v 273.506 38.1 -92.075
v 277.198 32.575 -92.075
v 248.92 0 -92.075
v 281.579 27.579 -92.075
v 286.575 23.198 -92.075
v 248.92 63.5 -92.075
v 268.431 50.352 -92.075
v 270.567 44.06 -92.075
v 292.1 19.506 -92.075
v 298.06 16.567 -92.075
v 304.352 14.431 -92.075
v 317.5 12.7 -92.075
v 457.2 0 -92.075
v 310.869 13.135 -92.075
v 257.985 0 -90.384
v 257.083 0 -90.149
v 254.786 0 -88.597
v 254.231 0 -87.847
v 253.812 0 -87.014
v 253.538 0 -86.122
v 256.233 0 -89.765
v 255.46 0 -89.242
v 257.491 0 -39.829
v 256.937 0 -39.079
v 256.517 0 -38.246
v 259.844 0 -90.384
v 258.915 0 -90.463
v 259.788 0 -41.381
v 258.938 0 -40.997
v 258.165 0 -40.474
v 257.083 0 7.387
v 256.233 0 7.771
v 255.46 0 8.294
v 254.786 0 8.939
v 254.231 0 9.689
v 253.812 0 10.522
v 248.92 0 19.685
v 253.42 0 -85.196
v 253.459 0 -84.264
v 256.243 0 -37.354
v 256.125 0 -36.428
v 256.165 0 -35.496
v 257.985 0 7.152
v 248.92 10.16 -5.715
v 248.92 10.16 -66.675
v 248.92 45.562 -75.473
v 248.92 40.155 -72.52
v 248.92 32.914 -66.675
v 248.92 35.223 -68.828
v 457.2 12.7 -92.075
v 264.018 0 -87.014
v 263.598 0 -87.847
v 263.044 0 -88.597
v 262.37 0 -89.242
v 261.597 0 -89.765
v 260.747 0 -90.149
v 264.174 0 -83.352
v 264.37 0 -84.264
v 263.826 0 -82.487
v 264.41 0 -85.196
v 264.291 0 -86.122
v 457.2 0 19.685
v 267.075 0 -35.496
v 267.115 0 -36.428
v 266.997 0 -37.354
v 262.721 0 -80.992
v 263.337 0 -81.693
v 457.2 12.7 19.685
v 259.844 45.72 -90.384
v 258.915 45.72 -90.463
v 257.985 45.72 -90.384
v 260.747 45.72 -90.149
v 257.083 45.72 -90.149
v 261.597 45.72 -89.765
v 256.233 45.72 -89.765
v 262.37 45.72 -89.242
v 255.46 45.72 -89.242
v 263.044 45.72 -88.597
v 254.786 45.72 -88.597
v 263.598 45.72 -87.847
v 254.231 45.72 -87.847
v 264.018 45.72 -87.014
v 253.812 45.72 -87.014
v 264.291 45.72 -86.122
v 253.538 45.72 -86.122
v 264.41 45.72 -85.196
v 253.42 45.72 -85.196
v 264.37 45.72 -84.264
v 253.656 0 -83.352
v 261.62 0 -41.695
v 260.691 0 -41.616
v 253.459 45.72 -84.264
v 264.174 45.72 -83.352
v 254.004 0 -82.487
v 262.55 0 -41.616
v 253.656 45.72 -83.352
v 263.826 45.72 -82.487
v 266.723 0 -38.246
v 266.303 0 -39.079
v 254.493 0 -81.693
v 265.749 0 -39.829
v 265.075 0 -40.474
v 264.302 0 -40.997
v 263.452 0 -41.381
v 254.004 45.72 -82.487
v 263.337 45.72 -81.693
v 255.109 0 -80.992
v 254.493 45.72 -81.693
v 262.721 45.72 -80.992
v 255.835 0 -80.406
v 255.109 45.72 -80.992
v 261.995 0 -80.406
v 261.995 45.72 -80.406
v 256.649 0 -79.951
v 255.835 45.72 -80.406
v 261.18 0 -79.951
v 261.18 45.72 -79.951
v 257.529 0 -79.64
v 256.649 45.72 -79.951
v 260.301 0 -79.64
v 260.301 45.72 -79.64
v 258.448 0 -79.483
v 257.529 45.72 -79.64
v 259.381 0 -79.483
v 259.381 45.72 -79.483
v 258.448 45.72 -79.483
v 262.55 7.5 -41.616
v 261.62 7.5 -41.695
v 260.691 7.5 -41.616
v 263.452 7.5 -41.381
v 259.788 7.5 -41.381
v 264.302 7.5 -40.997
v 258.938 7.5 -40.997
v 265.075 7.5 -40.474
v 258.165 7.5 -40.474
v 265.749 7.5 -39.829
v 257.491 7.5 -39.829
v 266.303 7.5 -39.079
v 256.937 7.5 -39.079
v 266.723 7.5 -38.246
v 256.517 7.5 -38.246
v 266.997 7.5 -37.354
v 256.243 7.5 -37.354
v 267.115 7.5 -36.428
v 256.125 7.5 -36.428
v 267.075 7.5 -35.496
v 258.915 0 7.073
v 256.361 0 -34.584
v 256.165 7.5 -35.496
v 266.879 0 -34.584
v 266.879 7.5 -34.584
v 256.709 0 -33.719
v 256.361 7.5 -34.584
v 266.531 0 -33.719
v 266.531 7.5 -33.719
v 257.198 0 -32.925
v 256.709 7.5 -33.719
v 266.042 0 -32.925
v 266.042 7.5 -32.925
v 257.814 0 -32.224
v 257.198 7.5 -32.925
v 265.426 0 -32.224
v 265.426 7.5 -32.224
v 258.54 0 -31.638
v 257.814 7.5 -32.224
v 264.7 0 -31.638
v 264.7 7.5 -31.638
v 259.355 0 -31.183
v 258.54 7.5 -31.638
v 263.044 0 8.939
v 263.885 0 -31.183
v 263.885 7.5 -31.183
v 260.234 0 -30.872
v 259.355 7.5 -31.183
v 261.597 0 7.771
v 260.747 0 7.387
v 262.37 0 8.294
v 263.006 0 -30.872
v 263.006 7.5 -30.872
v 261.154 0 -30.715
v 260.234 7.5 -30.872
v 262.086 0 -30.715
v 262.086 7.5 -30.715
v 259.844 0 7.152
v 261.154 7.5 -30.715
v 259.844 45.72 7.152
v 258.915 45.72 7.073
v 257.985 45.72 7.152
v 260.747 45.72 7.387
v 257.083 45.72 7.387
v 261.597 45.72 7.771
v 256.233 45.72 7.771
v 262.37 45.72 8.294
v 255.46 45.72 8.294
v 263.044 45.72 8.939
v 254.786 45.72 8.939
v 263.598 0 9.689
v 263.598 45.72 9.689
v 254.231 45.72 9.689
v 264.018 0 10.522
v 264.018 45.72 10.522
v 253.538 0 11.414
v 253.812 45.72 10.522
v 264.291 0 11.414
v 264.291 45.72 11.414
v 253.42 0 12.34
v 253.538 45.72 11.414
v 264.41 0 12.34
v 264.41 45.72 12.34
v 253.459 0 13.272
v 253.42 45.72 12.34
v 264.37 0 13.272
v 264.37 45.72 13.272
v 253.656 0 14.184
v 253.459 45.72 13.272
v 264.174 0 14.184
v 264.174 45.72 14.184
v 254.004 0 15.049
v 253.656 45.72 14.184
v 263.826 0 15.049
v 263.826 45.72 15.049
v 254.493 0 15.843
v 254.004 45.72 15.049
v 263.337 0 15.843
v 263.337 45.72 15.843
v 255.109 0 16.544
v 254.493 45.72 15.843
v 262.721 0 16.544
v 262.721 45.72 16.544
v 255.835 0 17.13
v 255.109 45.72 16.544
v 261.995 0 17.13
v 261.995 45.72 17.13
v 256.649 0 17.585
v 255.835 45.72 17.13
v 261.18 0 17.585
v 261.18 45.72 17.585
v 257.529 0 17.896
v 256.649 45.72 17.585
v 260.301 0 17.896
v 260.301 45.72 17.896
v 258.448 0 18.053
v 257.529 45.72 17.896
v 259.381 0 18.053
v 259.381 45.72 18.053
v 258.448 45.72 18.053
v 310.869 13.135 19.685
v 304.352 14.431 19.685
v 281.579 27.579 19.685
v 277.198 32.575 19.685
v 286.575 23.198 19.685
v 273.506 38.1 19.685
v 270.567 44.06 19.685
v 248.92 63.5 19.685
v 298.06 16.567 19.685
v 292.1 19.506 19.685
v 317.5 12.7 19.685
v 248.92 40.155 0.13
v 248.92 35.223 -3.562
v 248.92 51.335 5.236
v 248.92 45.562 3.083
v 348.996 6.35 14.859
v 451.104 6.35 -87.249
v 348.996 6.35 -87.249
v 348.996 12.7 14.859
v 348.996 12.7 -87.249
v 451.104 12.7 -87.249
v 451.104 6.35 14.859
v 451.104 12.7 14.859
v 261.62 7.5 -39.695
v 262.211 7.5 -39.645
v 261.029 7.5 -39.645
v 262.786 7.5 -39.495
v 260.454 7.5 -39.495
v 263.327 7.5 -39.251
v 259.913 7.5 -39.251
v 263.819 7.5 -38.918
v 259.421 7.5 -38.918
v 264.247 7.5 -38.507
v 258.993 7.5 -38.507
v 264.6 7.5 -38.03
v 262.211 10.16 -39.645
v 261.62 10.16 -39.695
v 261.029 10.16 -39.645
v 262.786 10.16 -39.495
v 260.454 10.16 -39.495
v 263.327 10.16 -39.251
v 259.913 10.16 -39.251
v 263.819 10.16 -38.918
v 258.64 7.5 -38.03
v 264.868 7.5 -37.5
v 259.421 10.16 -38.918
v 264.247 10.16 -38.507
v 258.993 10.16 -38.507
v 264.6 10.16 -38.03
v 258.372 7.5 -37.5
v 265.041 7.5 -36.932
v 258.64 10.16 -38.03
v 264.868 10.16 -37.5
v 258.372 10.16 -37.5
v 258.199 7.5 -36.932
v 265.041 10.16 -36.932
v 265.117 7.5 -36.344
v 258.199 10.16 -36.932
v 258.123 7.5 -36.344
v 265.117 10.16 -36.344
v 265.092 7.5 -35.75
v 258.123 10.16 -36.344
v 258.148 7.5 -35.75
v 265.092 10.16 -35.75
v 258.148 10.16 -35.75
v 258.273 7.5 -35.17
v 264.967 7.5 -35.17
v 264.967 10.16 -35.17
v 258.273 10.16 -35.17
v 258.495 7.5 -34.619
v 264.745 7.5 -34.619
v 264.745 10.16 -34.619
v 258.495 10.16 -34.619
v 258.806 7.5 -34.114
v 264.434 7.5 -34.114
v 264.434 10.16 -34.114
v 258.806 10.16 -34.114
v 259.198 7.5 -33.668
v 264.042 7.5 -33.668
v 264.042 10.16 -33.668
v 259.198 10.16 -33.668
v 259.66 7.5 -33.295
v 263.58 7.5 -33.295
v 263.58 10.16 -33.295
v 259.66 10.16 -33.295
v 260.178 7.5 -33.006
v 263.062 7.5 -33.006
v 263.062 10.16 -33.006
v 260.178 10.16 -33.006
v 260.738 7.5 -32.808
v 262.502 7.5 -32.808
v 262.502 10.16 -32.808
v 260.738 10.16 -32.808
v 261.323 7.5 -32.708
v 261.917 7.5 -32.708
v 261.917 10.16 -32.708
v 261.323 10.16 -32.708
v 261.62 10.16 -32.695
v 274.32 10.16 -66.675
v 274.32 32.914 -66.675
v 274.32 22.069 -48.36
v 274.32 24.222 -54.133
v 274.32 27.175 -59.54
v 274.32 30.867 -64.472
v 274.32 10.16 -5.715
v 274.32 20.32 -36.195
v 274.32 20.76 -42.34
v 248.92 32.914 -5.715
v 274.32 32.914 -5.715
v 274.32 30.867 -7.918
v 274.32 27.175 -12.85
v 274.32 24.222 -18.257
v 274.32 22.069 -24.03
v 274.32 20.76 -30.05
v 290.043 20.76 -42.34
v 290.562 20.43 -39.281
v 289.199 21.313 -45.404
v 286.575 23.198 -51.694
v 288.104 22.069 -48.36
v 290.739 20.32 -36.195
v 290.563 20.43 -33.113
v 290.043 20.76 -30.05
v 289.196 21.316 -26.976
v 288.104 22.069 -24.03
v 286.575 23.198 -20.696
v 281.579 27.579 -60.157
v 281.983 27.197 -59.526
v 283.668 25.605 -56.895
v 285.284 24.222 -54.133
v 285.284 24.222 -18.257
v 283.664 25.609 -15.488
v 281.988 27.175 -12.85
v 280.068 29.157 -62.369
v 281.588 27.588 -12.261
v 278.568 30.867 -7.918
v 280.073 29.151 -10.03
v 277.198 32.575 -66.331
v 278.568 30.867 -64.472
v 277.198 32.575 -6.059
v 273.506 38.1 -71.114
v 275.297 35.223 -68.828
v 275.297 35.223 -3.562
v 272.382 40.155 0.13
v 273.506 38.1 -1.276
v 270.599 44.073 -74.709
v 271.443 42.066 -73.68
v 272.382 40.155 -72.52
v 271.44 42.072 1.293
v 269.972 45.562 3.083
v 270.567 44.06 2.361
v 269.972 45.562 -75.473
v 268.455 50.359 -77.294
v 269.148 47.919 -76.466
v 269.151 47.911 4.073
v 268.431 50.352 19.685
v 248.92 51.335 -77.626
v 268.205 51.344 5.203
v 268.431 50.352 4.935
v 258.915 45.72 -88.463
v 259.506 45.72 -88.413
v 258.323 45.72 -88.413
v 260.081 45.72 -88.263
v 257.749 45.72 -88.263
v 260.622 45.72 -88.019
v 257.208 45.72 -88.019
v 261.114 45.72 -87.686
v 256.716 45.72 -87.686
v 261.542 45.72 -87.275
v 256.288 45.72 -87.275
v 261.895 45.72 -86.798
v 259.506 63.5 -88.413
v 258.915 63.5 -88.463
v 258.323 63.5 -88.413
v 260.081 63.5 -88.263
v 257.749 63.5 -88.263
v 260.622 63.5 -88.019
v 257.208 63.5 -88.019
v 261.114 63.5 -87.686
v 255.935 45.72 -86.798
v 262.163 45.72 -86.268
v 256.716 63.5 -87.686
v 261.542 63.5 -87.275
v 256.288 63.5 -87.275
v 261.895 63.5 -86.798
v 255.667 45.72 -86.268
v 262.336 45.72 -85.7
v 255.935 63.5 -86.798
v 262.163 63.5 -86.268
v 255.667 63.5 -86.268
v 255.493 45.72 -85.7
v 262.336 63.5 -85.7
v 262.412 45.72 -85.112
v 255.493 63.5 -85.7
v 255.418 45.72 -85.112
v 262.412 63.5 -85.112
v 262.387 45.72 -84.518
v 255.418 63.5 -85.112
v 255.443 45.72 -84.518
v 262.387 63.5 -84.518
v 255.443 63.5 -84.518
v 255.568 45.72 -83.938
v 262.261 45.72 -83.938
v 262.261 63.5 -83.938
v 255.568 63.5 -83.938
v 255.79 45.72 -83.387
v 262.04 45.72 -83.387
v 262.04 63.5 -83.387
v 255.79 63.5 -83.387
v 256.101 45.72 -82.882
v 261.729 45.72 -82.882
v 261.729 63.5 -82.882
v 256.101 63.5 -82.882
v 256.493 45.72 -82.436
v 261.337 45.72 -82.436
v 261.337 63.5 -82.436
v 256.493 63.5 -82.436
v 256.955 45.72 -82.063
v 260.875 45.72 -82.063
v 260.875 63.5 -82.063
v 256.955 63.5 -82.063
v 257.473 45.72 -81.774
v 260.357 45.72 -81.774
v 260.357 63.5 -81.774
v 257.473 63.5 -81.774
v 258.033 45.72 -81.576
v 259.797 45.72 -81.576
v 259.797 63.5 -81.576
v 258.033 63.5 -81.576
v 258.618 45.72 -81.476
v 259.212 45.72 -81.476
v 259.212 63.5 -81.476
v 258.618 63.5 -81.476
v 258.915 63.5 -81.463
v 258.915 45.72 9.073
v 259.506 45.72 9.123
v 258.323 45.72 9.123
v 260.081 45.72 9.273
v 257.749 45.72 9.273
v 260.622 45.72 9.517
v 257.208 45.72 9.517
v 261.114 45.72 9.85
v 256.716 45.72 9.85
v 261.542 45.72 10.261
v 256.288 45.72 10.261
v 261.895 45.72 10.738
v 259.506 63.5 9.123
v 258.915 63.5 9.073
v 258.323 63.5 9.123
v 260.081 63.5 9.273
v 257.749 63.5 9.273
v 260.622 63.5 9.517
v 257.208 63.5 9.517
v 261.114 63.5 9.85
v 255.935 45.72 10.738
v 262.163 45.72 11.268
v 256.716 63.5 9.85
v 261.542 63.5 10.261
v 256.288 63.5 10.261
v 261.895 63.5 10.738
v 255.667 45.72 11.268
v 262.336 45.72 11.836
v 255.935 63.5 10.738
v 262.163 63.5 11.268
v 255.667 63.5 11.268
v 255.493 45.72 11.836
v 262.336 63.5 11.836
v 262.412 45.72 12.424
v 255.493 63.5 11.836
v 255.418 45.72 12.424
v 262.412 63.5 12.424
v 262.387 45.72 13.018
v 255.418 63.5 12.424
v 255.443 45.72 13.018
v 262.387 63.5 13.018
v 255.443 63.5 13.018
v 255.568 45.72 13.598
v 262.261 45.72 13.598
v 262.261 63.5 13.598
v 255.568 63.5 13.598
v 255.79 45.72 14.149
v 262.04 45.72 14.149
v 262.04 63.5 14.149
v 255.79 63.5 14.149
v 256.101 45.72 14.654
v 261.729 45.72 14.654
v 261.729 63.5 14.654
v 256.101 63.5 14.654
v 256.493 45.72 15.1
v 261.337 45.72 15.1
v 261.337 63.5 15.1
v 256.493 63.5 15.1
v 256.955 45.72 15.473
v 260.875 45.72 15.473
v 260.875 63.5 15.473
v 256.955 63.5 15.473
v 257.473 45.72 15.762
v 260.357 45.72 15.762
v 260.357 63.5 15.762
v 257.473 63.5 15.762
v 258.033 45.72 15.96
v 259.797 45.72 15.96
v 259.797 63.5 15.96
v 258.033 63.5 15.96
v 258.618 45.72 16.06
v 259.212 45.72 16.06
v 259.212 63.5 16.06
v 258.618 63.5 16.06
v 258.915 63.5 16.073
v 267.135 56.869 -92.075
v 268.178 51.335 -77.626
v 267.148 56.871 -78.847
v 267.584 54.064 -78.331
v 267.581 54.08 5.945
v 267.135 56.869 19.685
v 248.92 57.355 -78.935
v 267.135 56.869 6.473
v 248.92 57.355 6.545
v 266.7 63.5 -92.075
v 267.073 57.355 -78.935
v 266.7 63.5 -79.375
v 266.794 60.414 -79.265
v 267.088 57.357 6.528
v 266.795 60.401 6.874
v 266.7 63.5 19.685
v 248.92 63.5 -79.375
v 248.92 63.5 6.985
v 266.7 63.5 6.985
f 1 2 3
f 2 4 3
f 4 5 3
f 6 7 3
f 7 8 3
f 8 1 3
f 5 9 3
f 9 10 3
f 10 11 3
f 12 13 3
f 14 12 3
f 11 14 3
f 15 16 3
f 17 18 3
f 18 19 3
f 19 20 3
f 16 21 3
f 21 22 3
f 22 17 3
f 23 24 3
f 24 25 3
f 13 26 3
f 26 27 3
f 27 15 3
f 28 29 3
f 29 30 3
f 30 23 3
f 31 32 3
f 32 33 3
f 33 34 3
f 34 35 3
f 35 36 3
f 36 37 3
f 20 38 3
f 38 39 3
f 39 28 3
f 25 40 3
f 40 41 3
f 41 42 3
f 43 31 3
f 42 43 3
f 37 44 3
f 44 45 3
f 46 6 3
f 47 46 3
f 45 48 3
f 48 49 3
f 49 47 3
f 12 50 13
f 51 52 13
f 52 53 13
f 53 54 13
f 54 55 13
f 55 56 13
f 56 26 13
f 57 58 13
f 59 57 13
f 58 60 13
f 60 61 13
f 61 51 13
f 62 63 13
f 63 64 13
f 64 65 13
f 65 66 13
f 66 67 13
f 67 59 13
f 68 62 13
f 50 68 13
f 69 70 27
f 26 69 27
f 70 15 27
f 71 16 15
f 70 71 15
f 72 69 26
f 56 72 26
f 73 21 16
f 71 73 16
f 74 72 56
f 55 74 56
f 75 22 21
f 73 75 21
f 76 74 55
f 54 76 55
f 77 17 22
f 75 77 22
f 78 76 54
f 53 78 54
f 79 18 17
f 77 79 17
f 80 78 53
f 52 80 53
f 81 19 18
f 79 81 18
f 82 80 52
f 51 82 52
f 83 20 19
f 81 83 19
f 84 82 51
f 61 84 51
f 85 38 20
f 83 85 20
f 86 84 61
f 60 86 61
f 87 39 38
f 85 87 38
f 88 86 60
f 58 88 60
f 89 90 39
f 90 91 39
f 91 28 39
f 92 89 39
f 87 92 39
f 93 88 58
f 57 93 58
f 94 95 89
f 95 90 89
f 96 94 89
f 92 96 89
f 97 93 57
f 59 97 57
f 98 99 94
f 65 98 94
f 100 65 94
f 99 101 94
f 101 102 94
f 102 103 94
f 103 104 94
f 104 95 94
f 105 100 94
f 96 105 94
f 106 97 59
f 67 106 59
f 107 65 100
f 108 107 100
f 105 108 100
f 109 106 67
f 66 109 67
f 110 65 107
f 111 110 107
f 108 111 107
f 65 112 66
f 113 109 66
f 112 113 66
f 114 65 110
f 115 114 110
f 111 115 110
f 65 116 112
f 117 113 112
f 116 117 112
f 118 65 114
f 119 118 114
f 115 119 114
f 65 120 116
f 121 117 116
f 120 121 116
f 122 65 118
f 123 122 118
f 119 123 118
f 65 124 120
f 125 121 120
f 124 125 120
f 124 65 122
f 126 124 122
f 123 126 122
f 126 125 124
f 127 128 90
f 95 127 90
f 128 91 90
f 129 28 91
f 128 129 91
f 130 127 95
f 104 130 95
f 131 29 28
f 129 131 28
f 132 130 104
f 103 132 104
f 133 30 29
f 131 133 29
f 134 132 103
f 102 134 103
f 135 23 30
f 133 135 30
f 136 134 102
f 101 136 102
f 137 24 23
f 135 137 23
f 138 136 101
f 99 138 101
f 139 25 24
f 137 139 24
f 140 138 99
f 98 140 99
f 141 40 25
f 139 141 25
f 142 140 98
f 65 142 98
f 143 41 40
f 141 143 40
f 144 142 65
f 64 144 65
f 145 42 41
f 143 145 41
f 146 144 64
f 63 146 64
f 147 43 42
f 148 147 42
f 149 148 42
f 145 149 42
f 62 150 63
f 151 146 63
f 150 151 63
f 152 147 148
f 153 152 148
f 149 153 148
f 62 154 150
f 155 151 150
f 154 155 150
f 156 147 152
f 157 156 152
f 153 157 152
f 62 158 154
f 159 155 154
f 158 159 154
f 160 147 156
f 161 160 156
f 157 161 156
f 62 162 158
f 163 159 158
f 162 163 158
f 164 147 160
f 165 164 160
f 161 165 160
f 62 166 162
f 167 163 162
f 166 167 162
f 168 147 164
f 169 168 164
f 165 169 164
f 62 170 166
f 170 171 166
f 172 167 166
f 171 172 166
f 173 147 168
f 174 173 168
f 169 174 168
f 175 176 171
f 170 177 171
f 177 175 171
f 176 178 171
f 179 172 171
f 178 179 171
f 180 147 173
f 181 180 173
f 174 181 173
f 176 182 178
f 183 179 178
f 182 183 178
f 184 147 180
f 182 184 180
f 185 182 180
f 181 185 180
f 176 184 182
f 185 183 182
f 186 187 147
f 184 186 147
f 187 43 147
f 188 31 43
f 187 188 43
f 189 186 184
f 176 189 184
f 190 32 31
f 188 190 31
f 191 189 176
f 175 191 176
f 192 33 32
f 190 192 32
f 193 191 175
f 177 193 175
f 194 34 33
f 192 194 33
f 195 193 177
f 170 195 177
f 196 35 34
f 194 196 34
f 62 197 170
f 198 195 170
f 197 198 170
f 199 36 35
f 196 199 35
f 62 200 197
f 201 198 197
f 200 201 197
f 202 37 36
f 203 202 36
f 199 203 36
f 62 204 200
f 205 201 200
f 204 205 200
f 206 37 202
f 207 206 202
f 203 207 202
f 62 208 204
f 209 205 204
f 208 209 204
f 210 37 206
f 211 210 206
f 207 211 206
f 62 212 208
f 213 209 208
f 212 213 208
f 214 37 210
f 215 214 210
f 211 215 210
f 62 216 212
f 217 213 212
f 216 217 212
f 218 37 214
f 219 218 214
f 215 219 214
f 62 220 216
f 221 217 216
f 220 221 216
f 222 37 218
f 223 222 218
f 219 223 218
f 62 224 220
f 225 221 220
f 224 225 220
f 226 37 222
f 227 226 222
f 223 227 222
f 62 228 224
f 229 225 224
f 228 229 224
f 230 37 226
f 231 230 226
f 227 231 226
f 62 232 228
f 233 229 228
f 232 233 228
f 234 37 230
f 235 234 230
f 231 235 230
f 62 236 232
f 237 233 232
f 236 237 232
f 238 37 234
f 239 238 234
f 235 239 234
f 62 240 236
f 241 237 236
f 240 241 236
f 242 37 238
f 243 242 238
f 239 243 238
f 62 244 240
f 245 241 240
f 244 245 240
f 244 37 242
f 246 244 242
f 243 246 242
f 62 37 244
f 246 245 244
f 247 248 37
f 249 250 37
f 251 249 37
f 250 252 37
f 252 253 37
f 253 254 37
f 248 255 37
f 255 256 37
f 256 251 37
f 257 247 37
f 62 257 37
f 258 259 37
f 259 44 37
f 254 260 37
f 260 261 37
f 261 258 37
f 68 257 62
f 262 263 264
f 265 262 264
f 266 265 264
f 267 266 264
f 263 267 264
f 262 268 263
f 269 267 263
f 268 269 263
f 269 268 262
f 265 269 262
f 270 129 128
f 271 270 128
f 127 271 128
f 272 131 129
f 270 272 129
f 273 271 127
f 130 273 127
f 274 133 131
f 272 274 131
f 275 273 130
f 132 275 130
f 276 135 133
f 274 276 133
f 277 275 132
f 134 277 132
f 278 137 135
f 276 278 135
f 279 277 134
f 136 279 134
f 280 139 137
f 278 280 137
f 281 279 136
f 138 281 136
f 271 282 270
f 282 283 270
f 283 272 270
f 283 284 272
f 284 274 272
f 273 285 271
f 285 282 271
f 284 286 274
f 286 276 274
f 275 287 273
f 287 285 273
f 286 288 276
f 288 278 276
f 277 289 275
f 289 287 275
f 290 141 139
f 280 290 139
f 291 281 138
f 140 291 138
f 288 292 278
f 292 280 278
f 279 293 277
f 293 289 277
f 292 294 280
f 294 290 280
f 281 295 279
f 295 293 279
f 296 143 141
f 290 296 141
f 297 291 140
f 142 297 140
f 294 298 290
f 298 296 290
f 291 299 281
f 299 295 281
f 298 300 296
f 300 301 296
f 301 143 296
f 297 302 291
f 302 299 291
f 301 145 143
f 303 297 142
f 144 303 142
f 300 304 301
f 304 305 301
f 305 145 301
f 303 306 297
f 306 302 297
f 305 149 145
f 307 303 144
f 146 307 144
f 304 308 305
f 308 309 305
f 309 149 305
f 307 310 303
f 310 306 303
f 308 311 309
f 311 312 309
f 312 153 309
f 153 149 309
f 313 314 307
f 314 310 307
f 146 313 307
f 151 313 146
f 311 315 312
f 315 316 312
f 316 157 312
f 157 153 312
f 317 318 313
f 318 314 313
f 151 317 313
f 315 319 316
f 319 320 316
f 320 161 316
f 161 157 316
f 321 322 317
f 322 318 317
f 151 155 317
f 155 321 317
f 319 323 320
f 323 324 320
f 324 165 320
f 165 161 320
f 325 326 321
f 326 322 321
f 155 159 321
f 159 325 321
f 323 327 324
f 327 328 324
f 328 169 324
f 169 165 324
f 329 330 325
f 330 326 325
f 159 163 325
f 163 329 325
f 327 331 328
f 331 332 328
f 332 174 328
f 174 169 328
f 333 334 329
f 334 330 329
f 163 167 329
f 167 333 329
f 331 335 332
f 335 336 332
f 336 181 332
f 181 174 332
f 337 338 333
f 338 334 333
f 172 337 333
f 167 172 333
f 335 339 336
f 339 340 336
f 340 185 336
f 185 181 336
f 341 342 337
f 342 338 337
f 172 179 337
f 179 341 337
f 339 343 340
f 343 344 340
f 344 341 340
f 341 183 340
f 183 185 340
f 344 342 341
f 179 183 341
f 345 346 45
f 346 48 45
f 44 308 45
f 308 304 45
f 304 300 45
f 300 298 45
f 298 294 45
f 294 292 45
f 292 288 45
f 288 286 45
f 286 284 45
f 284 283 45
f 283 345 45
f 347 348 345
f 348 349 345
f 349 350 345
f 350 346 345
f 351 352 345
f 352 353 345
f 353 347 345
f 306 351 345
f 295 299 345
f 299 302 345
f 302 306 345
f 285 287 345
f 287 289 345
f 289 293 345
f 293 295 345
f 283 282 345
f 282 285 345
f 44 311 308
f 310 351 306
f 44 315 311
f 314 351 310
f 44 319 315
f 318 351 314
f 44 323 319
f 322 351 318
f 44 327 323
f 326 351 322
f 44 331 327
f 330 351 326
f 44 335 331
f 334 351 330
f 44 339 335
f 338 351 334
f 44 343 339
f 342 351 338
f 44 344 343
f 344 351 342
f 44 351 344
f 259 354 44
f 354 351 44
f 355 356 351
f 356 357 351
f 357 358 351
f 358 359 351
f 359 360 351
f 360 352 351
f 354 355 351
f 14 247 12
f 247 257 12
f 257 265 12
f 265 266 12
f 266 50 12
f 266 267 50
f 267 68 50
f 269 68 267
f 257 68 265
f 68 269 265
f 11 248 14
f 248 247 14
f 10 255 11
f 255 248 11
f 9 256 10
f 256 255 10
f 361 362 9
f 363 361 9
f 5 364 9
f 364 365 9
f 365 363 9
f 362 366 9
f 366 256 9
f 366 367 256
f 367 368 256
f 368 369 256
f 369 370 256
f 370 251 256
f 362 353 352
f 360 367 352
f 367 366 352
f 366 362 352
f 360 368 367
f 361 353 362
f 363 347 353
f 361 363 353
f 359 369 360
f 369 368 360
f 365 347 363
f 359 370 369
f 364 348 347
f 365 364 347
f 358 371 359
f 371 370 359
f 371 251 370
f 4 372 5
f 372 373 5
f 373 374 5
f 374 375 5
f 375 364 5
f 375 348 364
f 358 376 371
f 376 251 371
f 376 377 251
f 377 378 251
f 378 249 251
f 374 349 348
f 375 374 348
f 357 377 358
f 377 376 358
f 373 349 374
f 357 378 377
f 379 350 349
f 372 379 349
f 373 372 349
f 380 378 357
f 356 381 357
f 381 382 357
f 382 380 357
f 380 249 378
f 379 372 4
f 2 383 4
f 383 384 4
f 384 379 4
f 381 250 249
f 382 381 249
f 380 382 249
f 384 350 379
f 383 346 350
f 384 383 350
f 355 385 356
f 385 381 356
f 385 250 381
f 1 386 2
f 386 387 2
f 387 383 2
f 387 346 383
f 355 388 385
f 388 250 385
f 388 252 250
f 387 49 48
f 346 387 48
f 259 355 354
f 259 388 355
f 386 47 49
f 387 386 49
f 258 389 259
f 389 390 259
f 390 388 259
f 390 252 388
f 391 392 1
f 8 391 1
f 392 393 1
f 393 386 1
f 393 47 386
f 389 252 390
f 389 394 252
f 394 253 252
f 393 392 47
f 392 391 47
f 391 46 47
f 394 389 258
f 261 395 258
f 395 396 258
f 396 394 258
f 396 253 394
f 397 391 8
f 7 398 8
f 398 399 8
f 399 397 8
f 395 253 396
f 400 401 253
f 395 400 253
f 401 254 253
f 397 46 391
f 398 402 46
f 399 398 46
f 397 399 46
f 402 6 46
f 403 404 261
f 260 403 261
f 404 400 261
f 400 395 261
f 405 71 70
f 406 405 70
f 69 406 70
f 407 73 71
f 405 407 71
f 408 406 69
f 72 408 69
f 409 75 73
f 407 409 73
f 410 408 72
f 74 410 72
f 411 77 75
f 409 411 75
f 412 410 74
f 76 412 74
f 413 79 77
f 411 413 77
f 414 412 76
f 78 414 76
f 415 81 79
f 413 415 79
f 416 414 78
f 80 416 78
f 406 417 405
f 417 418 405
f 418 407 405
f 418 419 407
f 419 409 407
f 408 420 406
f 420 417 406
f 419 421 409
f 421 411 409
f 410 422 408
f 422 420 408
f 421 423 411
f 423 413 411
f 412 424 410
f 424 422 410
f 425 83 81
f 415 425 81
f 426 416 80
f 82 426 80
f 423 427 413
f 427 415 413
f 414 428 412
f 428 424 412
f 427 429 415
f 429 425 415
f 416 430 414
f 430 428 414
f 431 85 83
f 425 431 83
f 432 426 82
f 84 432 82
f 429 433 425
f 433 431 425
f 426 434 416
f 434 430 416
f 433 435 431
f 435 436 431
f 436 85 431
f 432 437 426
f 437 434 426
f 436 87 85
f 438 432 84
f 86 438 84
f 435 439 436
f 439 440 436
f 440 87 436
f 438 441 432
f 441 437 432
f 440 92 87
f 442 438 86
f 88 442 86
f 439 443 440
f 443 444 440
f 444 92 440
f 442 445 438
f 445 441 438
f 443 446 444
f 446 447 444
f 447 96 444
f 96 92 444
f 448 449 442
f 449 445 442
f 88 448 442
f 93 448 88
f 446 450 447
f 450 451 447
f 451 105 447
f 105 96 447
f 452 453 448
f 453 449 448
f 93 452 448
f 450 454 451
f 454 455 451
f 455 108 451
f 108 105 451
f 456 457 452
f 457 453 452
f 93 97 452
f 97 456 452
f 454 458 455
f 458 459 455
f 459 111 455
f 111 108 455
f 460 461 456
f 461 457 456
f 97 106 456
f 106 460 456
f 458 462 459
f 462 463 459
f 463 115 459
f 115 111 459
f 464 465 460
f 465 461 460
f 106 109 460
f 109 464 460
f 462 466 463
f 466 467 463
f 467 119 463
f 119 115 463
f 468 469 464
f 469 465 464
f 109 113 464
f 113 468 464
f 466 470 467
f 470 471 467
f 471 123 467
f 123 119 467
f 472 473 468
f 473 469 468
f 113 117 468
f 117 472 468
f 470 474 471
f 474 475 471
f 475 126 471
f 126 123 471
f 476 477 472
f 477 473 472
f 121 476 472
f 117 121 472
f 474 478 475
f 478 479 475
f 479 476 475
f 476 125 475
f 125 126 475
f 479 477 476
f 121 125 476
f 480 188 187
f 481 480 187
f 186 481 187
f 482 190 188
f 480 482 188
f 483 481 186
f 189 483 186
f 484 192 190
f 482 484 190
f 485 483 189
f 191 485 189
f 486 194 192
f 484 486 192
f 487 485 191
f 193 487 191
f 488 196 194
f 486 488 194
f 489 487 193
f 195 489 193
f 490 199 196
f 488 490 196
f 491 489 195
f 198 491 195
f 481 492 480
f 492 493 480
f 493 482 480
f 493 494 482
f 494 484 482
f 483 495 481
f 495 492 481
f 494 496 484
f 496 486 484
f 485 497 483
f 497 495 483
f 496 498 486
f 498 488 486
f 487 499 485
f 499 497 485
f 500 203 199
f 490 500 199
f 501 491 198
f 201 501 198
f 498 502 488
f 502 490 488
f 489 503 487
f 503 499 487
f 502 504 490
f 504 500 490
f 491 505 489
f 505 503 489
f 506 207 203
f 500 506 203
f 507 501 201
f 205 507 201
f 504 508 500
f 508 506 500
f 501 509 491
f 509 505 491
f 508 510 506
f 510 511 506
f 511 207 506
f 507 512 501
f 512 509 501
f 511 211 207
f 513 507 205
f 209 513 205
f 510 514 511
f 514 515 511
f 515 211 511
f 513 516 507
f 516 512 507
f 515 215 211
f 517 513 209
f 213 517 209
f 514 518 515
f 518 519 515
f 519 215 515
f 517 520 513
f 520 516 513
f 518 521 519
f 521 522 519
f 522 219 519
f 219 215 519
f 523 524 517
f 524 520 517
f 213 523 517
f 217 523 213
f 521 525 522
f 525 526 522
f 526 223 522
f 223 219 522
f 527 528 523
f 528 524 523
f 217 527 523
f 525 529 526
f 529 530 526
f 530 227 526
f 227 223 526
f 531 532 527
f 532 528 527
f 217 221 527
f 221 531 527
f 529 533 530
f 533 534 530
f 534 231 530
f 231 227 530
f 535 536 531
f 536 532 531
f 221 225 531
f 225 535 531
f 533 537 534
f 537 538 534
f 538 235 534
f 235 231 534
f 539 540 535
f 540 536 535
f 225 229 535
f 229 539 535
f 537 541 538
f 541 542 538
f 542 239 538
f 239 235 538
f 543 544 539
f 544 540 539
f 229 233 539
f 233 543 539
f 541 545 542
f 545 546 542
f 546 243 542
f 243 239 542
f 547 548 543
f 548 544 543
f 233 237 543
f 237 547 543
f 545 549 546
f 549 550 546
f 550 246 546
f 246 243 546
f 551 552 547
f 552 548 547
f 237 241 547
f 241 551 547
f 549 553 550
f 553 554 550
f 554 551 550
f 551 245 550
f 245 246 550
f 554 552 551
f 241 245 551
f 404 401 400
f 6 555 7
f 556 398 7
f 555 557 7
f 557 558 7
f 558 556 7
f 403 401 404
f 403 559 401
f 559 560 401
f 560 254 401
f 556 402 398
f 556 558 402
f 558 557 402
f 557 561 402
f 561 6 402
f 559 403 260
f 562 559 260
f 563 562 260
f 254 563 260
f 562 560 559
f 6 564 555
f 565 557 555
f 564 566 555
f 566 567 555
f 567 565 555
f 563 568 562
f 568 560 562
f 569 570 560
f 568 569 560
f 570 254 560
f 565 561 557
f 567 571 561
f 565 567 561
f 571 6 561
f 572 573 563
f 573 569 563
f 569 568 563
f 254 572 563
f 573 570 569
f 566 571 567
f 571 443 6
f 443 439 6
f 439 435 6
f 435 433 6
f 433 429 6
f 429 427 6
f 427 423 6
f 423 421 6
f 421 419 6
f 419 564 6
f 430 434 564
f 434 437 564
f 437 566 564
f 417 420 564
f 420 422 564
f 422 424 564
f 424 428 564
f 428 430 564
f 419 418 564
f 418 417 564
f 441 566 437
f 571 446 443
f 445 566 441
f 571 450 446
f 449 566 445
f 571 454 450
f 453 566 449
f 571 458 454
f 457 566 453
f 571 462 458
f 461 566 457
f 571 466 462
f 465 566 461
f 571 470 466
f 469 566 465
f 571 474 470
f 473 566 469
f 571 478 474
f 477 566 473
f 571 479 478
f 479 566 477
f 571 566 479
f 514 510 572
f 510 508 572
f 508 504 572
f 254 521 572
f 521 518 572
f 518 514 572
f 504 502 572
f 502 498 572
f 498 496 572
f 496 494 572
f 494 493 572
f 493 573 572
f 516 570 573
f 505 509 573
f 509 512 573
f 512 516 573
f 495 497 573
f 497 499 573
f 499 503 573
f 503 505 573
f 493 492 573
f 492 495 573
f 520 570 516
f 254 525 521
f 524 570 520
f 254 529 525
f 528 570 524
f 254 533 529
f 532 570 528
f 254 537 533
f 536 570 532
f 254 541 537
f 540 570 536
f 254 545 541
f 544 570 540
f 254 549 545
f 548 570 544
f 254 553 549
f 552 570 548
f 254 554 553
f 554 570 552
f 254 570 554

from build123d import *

# Parameters (mm, degrees)
SKETCH3_W           = 508
SKETCH3_H           = 111.76
BOSS_EXTRUDE1_DEPTH = 63.5
CUT_EXTRUDE1_START  = 6.35
SKETCH2_W           = 102.108
SKETCH2_H           = 102.108
CUT_EXTRUDE1_DEPTH  = 111.76
CUT_EXTRUDE2_DEPTH  = 156.718
SKETCH5_R           = 43.18
CUT_EXTRUDE3_DEPTH  = 355.6
SKETCH6_W           = 266.7
SKETCH6_H           = 101.6
CUT_EXTRUDE4_DEPTH  = 50.8
SKETCH8_OUTSIDE_W   = 614.802
SKETCH8_OUTSIDE_H   = 218.562
CUT_EXTRUDE5_DEPTH  = 174.244
SKETCH9_W           = 25.4
SKETCH9_H           = 60.96
BOSS_EXTRUDE2_DEPTH = 10.16
SKETCH10_R          = 3.5
CUT_EXTRUDE6_DEPTH  = 93.98
SKETCH10_3_R        = 5.5
CUT_EXTRUDE7_DEPTH  = 45.72
SKETCH12_R          = 3.5
CUT_EXTRUDE8_DEPTH  = 93.98
SKETCH12_3_R        = 5.5
CUT_EXTRUDE9_DEPTH  = 7.5


with BuildPart() as part:
    # Sketch3 → Boss-Extrude1 (new body)
    with BuildSketch(Plane(origin=(0, 0, 0), x_dir=(1, 0, 0), z_dir=(0, 1, 0))):
        with Locations((203.2, 36.195)):
            Rectangle(SKETCH3_W, SKETCH3_H)
    extrude(amount=BOSS_EXTRUDE1_DEPTH)

    # Sketch2 → Cut-Extrude1 (cut)
    with BuildSketch(Plane(origin=(0, 0, 0), x_dir=(1, 0, 0), z_dir=(0, 1, 0)).offset(CUT_EXTRUDE1_START)):
        with Locations((400.05, 36.195)):
            Rectangle(SKETCH2_W, SKETCH2_H)
    extrude(amount=CUT_EXTRUDE1_DEPTH, mode=Mode.SUBTRACT)

    # Sketch4 → Cut-Extrude2 (cut)
    with BuildSketch(Plane.XY.offset(19.685)):
        with BuildLine():
            Line((317.5, 12.7), (457.2, 12.7))
            Line((457.2, 12.7), (457.2, 63.5))
            Line((457.2, 63.5), (368.3, 63.5))
            ThreePointArc((368.3, 63.5), (281.578975516, 99.421024484), (317.5, 12.7))
        make_face()
    extrude(amount=-CUT_EXTRUDE2_DEPTH, mode=Mode.SUBTRACT)

    # Sketch5 → Cut-Extrude3 (cut)
    with BuildSketch(Plane(origin=(0, 0, 0), x_dir=(0, 0, -1), z_dir=(1, 0, 0))):
        with Locations((36.195, 63.5)):
            Circle(SKETCH5_R)
    extrude(amount=CUT_EXTRUDE3_DEPTH, mode=Mode.SUBTRACT)

    # Sketch6 → Cut-Extrude4 (cut)
    with BuildSketch(Plane(origin=(0, 63.5, 0), x_dir=(1, 0, 0), z_dir=(0, 1, 0))):
        with Locations((87.63, 36.195)):
            Rectangle(SKETCH6_W, SKETCH6_H)
    extrude(amount=-CUT_EXTRUDE4_DEPTH, mode=Mode.SUBTRACT)

    # Sketch7 → Cut-Revolve1 (revolve, cut)
    with BuildSketch(Plane(origin=(0, 63.5, 0), x_dir=(1, 0, 0), z_dir=(0, 1, 0))):
        with BuildLine():
            Line((233.68, -13.805), (237.541436971, -13.805))
            ThreePointArc((237.541436971, -13.805), (242.139619592, 11.007294884), (243.68, 36.195))
            Line((243.68, 36.195), (233.68, 36.195))
            Line((233.68, 36.195), (233.68, -13.805))
        make_face()
    revolve(axis=Axis((-45.72, 63.5, -36.195), (1, 0, 0)), mode=Mode.SUBTRACT)

    # Sketch8 outside → Cut-Extrude5 (cut)
    with BuildSketch(Plane.XZ):
        with Locations((203.2, -36.195)):
            Rectangle(SKETCH8_OUTSIDE_W, SKETCH8_OUTSIDE_H)
        Polygon((248.92, 19.685), (248.92, -5.715), (274.32, -5.715), (274.32, -66.675), (248.92, -66.675), (248.92, -92.075), (493.448726159, -149.556417416), (493.448726159, 67.99660497), align=None, mode=Mode.SUBTRACT)
    extrude(amount=-CUT_EXTRUDE5_DEPTH, mode=Mode.SUBTRACT)

    # Sketch9 → Boss-Extrude2 (add)
    with BuildSketch(Plane.XZ):
        with Locations((261.62, -36.195)):
            Rectangle(SKETCH9_W, SKETCH9_H)
    extrude(amount=-BOSS_EXTRUDE2_DEPTH)

    # Sketch10 → Cut-Extrude6 (cut)
    with BuildSketch(Plane.XZ):
        with Locations((258.9149, -84.963)):
            Circle(SKETCH10_R)
        with Locations((258.9149, 12.573)):
            Circle(SKETCH10_R)
    extrude(amount=-CUT_EXTRUDE6_DEPTH, mode=Mode.SUBTRACT)

    # Sketch10<3> → Cut-Extrude7 (cut)
    with BuildSketch(Plane.XZ):
        with Locations((258.9149, 12.573)):
            Circle(SKETCH10_3_R)
        with Locations((258.9149, -84.963)):
            Circle(SKETCH10_3_R)
    extrude(amount=-CUT_EXTRUDE7_DEPTH, mode=Mode.SUBTRACT)

    # Sketch12 → Cut-Extrude8 (cut)
    with BuildSketch(Plane.XZ):
        with Locations((261.62, -36.195)):
            Circle(SKETCH12_R)
    extrude(amount=-CUT_EXTRUDE8_DEPTH, mode=Mode.SUBTRACT)

    # Sketch12<3> → Cut-Extrude9 (cut)
    with BuildSketch(Plane.XZ):
        with Locations((261.62, -36.195)):
            Circle(SKETCH12_3_R)
    extrude(amount=-CUT_EXTRUDE9_DEPTH, mode=Mode.SUBTRACT)


solid = part.part
